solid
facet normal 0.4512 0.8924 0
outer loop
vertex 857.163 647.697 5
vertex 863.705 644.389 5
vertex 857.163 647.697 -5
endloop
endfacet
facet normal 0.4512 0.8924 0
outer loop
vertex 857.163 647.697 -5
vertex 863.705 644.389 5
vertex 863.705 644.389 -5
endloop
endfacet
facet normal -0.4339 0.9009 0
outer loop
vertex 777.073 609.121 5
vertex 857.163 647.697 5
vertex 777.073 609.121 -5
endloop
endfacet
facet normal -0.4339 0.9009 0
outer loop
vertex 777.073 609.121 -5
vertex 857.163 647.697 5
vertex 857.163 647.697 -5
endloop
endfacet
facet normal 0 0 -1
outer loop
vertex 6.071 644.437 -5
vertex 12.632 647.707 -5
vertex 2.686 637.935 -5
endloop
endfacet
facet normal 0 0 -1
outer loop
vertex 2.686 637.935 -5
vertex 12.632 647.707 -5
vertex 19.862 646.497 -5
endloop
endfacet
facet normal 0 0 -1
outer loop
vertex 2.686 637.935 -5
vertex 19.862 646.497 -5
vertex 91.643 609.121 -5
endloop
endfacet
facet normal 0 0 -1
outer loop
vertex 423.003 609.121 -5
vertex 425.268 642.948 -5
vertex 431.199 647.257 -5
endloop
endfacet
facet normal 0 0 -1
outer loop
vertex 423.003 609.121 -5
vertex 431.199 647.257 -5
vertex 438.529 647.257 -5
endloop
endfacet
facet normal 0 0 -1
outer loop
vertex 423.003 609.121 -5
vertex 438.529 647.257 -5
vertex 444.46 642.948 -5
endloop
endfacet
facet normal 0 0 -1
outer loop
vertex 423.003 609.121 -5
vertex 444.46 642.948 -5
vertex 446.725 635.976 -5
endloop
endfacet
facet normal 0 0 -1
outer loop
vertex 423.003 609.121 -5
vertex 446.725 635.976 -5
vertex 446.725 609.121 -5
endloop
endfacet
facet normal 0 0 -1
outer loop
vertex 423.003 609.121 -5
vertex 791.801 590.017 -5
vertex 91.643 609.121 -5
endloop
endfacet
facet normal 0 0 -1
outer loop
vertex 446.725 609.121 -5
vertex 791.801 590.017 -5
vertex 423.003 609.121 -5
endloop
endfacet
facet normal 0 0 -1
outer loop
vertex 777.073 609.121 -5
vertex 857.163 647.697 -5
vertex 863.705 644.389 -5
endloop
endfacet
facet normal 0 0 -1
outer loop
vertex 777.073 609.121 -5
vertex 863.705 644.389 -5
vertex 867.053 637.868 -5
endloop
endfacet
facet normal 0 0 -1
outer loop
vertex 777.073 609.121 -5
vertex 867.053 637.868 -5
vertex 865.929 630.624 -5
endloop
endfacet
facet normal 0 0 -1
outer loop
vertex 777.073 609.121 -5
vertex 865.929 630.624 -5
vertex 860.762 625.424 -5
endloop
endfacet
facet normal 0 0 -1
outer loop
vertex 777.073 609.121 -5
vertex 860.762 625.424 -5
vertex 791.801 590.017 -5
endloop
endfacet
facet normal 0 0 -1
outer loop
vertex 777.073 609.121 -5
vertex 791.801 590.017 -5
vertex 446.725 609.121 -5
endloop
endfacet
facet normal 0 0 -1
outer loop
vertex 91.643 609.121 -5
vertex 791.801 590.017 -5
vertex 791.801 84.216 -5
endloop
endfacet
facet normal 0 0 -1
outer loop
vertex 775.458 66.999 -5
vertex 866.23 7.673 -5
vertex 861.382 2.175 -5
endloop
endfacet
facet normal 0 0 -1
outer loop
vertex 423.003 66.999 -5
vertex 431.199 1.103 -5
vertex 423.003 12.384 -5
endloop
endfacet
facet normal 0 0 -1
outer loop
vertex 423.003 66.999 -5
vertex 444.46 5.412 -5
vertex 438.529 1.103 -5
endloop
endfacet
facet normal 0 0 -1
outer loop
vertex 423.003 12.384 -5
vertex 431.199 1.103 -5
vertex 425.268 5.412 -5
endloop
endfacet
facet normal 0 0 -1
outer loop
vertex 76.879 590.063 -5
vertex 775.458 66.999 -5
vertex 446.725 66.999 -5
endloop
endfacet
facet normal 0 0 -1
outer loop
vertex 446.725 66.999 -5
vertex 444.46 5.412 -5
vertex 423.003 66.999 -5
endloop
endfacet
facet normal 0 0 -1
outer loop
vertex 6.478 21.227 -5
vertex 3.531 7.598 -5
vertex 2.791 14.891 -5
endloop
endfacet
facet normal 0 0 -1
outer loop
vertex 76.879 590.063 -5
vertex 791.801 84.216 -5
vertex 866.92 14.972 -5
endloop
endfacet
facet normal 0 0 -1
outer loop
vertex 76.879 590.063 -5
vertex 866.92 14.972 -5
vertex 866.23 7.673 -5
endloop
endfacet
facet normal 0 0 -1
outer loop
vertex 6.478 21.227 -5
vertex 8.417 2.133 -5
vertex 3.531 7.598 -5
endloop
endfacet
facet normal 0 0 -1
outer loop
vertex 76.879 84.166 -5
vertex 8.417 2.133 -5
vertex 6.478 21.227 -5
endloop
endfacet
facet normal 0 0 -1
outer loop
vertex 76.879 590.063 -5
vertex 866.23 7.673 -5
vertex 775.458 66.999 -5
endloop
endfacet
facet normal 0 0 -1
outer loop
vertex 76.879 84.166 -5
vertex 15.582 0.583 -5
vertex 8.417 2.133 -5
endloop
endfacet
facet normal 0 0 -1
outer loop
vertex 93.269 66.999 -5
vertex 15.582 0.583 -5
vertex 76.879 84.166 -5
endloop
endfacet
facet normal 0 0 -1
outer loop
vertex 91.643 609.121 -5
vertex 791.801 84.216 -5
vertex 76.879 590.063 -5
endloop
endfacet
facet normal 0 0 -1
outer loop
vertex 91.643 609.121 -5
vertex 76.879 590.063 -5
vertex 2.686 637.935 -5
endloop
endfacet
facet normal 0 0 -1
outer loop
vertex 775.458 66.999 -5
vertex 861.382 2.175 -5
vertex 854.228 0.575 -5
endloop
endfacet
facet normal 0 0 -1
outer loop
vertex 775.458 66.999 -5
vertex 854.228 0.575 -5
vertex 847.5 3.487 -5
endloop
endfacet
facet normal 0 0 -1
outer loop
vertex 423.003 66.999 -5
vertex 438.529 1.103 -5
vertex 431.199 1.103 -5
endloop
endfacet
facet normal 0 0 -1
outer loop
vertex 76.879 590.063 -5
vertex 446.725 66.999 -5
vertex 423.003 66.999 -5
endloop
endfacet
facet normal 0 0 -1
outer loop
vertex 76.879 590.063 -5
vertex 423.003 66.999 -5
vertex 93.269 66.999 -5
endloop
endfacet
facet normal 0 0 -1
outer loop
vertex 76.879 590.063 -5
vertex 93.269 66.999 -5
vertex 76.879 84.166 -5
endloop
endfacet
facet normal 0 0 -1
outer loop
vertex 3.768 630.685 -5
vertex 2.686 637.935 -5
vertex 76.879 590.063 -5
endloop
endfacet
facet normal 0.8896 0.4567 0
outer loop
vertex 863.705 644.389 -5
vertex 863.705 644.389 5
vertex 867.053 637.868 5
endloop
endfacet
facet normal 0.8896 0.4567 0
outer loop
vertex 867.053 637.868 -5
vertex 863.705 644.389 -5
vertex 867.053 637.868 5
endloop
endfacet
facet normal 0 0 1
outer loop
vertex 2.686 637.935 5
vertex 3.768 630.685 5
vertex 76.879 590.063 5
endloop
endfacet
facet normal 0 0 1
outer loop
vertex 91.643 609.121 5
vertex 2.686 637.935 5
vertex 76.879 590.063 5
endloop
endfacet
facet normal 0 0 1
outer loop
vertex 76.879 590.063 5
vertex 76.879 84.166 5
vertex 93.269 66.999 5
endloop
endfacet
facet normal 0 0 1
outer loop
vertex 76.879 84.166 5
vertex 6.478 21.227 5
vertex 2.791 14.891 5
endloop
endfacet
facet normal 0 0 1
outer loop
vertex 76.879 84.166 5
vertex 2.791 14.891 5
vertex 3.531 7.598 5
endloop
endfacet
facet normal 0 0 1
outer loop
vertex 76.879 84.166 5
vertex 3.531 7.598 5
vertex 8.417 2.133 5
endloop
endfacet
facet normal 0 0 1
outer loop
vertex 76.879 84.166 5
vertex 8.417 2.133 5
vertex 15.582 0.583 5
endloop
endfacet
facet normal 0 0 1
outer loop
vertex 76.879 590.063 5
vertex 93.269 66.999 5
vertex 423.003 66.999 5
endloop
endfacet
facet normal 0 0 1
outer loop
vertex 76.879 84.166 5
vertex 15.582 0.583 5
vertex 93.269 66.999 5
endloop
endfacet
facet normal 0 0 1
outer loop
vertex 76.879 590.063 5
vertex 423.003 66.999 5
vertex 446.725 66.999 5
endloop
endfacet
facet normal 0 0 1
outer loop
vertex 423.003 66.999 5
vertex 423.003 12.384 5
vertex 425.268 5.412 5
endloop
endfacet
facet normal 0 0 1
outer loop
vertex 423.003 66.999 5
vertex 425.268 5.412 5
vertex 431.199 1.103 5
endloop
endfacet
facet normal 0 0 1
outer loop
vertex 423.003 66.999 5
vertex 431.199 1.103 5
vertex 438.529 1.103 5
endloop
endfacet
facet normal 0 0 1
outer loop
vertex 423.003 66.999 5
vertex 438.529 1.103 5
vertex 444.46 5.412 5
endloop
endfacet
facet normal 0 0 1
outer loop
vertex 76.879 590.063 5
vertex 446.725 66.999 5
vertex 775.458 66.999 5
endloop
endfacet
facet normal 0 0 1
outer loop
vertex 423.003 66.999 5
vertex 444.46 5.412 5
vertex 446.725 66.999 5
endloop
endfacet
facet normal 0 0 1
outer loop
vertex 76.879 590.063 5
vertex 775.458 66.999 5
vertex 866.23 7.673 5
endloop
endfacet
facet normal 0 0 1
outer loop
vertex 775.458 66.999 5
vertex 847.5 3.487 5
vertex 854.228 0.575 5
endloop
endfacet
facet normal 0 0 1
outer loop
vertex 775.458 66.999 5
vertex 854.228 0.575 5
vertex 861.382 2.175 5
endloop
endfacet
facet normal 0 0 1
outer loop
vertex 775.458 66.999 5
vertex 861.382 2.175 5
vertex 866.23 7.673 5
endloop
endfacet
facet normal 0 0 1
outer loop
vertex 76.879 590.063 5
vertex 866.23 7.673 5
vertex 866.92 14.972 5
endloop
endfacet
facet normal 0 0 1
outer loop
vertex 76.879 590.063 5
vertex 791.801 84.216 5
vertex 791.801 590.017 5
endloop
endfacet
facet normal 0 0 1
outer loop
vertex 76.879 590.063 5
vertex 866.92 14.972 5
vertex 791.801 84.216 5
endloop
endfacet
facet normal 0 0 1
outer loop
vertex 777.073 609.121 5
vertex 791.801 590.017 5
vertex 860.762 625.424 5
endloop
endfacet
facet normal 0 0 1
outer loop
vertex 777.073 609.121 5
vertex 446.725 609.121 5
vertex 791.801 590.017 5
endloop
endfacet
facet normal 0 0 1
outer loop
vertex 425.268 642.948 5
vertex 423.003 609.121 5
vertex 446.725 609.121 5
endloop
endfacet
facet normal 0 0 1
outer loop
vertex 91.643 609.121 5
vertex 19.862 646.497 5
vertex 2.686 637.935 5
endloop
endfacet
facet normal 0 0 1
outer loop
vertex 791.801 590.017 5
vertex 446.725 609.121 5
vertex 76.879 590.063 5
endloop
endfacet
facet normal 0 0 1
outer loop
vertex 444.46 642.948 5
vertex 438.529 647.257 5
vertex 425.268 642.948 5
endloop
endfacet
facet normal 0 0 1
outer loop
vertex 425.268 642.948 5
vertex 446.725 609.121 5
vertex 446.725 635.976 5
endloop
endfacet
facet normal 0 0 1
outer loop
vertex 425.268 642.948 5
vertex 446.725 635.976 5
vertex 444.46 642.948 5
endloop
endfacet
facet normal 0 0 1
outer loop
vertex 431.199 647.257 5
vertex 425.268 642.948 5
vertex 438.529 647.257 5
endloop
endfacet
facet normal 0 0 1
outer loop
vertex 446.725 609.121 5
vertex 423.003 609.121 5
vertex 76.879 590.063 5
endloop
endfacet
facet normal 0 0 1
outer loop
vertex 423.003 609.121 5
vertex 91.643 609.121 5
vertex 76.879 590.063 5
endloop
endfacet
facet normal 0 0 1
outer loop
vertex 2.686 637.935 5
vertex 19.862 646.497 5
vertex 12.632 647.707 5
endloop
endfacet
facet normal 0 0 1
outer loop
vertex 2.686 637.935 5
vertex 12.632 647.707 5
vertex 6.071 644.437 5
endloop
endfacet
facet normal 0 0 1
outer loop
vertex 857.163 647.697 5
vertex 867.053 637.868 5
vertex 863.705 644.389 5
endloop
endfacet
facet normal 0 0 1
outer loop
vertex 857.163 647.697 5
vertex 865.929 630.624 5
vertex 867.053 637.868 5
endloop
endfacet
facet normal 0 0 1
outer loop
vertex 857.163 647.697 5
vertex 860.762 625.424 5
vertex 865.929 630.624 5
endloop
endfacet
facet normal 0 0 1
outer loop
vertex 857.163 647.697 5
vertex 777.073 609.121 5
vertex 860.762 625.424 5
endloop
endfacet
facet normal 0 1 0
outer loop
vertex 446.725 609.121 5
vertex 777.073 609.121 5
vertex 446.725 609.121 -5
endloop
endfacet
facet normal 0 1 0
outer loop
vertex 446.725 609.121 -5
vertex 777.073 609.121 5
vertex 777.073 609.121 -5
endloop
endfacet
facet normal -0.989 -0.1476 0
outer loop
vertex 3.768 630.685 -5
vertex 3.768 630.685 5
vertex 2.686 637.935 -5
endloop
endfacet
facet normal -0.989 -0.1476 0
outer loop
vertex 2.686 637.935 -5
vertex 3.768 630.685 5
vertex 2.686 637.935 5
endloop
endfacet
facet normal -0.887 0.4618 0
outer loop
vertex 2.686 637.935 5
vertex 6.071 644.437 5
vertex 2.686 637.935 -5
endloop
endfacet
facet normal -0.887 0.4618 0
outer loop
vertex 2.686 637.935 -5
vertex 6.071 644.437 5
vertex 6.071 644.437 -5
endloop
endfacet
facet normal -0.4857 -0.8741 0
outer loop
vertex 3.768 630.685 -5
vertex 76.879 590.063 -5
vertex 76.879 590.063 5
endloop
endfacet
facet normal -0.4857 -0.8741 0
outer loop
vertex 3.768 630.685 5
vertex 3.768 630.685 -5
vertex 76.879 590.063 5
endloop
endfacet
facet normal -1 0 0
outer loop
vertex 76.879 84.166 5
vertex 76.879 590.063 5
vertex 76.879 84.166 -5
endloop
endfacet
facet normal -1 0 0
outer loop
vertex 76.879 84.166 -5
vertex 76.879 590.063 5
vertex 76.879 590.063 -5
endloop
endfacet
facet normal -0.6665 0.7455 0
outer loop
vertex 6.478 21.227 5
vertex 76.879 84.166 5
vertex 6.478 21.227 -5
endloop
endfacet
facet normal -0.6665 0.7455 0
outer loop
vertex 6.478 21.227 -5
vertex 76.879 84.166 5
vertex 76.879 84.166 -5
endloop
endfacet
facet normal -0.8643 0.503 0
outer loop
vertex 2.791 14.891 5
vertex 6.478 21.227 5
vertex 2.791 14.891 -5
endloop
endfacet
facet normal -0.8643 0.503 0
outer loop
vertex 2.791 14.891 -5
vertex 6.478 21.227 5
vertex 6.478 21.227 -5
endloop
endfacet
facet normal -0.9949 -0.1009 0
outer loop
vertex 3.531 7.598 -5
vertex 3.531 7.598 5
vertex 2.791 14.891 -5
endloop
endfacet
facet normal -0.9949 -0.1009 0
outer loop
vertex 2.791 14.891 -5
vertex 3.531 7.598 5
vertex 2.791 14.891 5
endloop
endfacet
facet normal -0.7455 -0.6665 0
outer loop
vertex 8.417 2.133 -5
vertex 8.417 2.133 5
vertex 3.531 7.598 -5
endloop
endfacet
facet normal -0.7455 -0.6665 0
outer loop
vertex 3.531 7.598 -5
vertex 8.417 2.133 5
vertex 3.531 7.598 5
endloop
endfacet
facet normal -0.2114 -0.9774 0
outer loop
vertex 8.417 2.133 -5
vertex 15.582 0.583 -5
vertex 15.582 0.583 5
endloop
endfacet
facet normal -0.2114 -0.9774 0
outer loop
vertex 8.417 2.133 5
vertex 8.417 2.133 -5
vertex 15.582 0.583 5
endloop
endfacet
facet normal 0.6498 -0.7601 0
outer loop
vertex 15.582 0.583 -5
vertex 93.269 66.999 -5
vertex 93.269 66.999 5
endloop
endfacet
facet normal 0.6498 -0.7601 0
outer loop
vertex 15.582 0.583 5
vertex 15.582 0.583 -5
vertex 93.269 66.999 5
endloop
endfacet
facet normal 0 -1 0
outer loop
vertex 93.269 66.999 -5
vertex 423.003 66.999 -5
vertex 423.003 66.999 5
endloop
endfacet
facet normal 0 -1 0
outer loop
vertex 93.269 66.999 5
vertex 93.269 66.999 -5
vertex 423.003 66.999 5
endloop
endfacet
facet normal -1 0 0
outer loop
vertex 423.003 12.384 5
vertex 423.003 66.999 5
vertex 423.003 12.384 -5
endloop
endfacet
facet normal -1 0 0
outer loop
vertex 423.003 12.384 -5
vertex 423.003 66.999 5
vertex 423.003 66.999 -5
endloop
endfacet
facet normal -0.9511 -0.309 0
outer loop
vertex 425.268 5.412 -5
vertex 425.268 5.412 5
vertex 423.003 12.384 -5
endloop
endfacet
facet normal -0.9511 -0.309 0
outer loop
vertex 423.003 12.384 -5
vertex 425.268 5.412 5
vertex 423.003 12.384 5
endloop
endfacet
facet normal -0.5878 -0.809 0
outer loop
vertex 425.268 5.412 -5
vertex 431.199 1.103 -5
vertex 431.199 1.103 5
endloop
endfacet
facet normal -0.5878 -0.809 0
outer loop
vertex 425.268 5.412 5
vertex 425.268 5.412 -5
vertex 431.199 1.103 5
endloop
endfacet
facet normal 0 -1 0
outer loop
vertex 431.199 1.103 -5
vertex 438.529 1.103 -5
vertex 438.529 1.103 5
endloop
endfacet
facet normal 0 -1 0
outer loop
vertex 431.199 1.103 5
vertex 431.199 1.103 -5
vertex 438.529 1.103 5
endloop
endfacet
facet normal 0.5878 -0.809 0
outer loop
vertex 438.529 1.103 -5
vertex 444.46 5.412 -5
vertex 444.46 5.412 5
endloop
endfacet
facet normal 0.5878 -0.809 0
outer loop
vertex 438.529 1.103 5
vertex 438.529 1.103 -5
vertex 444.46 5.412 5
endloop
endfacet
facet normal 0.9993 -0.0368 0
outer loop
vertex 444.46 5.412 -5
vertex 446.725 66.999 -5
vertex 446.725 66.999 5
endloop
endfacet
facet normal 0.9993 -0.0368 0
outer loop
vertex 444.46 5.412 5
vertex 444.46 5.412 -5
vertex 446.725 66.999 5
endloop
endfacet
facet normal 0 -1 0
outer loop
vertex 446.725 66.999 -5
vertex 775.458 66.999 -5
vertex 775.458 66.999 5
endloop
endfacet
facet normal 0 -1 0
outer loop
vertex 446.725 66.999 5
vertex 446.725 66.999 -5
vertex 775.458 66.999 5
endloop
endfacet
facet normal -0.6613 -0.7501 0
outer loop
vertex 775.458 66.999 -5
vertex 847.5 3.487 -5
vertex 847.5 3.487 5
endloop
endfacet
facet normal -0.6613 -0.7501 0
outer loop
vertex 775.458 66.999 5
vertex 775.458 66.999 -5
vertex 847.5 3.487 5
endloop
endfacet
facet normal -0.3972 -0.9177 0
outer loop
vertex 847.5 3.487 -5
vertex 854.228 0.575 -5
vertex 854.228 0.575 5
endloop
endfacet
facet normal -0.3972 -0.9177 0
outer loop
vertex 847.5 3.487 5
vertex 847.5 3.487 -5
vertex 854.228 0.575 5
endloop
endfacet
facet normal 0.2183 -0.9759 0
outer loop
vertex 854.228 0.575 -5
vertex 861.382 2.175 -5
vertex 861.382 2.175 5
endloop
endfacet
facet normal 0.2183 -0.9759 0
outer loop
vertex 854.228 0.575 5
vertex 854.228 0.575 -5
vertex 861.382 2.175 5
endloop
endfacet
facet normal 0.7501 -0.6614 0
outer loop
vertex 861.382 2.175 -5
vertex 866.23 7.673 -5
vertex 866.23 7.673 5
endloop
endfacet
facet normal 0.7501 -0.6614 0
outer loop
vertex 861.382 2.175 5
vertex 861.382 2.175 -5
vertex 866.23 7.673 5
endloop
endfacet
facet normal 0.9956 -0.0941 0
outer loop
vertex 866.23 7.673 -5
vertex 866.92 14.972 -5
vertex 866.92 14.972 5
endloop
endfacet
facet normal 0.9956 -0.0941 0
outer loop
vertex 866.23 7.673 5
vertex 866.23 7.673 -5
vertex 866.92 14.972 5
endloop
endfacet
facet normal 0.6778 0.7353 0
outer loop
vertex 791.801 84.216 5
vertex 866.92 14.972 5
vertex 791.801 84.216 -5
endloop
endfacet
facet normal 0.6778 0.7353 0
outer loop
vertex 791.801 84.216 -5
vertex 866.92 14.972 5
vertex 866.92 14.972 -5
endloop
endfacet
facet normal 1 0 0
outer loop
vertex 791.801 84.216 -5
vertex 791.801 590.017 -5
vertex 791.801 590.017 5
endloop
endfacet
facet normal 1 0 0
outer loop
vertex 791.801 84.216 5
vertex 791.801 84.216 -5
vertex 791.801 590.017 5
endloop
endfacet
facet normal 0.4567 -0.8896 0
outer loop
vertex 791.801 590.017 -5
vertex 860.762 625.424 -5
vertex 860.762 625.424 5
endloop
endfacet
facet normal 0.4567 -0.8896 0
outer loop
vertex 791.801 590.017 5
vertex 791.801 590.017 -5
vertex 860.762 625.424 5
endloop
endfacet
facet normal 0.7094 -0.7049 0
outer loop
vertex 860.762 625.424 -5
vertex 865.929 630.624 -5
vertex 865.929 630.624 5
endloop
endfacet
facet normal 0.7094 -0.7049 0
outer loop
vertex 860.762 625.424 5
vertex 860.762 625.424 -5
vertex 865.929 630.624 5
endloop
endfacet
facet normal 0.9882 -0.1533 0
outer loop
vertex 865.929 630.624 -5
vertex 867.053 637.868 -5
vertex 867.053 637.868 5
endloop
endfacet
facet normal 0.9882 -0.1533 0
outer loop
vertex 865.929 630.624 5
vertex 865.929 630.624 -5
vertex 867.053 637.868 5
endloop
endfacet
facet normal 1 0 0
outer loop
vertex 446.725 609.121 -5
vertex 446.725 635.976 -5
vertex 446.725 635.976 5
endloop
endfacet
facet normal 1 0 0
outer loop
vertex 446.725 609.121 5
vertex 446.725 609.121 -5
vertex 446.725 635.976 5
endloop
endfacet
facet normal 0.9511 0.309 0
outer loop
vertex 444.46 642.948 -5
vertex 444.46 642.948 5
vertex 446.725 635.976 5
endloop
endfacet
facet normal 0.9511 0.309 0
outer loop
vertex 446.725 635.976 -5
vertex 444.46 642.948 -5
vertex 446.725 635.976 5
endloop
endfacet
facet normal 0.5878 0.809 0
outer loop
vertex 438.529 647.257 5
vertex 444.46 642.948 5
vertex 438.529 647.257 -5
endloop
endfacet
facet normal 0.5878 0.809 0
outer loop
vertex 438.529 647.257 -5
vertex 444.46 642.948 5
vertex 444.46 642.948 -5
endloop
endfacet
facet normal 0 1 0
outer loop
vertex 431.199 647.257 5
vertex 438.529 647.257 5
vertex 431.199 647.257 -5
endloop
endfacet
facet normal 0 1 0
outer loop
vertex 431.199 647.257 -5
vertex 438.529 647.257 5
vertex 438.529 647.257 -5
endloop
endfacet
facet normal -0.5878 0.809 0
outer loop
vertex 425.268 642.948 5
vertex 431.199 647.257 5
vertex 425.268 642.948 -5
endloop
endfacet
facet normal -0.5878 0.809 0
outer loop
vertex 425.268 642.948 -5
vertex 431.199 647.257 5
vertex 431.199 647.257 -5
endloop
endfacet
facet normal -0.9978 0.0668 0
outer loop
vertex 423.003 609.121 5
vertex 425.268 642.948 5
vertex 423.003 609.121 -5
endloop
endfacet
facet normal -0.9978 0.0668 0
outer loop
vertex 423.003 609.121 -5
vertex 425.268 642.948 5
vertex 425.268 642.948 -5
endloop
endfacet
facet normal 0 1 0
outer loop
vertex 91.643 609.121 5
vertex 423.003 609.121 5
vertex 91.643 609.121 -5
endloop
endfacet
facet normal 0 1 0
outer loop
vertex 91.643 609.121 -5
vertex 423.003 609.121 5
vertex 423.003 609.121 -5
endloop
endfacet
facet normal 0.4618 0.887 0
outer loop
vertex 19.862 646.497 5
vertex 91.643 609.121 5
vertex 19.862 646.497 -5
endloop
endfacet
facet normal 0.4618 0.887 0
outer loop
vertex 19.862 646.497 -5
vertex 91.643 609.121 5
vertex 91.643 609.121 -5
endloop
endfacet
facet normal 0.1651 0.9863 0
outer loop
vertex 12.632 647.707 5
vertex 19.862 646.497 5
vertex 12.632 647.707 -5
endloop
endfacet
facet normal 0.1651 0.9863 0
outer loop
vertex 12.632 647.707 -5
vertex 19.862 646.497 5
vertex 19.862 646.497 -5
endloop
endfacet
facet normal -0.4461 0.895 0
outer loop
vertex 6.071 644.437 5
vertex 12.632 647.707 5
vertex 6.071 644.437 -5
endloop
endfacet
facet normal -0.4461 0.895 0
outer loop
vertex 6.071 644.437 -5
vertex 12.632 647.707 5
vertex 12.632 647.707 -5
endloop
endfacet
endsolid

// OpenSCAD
linear_extrude(height=10, center=true, convexity=10, twist=0)translate([2, 0, 0])polygon(points=[[444.72529133858274, 66.998551181102442], [444.72529133858274, 66.998551181102442], [773.45822923451101, 66.998551181102442], [845.50009266411769, 3.4866211767269846], [845.50009266411769, 3.4866211767269828], [852.22789371934812, 0.57533627419995526], [859.38200943873039, 2.1745595532105759], [864.22981077691043, 7.6734420767768423], [864.9196023934104, 14.971597621039237], [789.80144881889748, 84.215505465085101], [789.80144881889748, 590.01659086004531], [858.76176915738108, 625.4243172159097], [858.76176915738108, 625.4243172159097], [863.92919084727839, 630.62399411945103], [865.05342941091976, 637.86795536137265], [861.70506392845732, 644.3892539604476], [855.16305620743503, 647.69697550261617], [775.07299054257783, 609.12113385826763], [444.72529133858274, 609.12113385826763], [444.72529133858274, 635.976], [444.72529133858274, 635.976], [442.45998626814577, 642.94789212196338], [436.52934059885445, 647.2567584192343], [429.19865940114562, 647.2567584192343], [423.2680137318543, 642.94789212196338], [421.00270866141733, 609.12113385826763], [89.643181748060655, 609.12113385826763], [17.861913533383269, 646.49658437252958], [17.861913533383266, 646.49658437252958], [10.63188080255205, 647.70716833638801], [4.0710980528047607, 644.43684472349264], [0.68556130174086816, 637.93476599975838], [1.7684305181048883, 630.68450524012417], [74.878866141732288, 590.06298907593396], [74.878866141732288, 84.165986238383624], [4.4784762729012888, 21.226676451110023], [4.478476272901287, 21.226676451110023], [0.79070214658635063, 14.891125266270308], [1.5311737585742318, 7.5979374437689664], [6.4170561207899821, 2.1328628454646741], [13.582108235900812, 0.58337421685599189], [91.269227514797834, 66.998551181102442], [421.00270866141733, 66.998551181102442], [421.00270866141733, 12.383999999999999], [421.00270866141733, 12.384], [423.2680137318543, 5.4121078780366538], [429.19865940114562, 1.1032415807656779], [436.52934059885445, 1.1032415807656779], [442.45998626814577, 5.4121078780366503], [444.72529133858274, 66.998551181102442]], paths=[[0, 1, 2, 3, 4, 5, 6, 7, 8, 9, 10, 11, 12, 13, 14, 15, 16, 17, 18, 19, 20, 21, 22, 23, 24, 25, 26, 27, 28, 29, 30, 31, 32, 33, 34, 35, 36, 37, 38, 39, 40, 41, 42, 43, 44, 45, 46, 47, 48, 49]]);
